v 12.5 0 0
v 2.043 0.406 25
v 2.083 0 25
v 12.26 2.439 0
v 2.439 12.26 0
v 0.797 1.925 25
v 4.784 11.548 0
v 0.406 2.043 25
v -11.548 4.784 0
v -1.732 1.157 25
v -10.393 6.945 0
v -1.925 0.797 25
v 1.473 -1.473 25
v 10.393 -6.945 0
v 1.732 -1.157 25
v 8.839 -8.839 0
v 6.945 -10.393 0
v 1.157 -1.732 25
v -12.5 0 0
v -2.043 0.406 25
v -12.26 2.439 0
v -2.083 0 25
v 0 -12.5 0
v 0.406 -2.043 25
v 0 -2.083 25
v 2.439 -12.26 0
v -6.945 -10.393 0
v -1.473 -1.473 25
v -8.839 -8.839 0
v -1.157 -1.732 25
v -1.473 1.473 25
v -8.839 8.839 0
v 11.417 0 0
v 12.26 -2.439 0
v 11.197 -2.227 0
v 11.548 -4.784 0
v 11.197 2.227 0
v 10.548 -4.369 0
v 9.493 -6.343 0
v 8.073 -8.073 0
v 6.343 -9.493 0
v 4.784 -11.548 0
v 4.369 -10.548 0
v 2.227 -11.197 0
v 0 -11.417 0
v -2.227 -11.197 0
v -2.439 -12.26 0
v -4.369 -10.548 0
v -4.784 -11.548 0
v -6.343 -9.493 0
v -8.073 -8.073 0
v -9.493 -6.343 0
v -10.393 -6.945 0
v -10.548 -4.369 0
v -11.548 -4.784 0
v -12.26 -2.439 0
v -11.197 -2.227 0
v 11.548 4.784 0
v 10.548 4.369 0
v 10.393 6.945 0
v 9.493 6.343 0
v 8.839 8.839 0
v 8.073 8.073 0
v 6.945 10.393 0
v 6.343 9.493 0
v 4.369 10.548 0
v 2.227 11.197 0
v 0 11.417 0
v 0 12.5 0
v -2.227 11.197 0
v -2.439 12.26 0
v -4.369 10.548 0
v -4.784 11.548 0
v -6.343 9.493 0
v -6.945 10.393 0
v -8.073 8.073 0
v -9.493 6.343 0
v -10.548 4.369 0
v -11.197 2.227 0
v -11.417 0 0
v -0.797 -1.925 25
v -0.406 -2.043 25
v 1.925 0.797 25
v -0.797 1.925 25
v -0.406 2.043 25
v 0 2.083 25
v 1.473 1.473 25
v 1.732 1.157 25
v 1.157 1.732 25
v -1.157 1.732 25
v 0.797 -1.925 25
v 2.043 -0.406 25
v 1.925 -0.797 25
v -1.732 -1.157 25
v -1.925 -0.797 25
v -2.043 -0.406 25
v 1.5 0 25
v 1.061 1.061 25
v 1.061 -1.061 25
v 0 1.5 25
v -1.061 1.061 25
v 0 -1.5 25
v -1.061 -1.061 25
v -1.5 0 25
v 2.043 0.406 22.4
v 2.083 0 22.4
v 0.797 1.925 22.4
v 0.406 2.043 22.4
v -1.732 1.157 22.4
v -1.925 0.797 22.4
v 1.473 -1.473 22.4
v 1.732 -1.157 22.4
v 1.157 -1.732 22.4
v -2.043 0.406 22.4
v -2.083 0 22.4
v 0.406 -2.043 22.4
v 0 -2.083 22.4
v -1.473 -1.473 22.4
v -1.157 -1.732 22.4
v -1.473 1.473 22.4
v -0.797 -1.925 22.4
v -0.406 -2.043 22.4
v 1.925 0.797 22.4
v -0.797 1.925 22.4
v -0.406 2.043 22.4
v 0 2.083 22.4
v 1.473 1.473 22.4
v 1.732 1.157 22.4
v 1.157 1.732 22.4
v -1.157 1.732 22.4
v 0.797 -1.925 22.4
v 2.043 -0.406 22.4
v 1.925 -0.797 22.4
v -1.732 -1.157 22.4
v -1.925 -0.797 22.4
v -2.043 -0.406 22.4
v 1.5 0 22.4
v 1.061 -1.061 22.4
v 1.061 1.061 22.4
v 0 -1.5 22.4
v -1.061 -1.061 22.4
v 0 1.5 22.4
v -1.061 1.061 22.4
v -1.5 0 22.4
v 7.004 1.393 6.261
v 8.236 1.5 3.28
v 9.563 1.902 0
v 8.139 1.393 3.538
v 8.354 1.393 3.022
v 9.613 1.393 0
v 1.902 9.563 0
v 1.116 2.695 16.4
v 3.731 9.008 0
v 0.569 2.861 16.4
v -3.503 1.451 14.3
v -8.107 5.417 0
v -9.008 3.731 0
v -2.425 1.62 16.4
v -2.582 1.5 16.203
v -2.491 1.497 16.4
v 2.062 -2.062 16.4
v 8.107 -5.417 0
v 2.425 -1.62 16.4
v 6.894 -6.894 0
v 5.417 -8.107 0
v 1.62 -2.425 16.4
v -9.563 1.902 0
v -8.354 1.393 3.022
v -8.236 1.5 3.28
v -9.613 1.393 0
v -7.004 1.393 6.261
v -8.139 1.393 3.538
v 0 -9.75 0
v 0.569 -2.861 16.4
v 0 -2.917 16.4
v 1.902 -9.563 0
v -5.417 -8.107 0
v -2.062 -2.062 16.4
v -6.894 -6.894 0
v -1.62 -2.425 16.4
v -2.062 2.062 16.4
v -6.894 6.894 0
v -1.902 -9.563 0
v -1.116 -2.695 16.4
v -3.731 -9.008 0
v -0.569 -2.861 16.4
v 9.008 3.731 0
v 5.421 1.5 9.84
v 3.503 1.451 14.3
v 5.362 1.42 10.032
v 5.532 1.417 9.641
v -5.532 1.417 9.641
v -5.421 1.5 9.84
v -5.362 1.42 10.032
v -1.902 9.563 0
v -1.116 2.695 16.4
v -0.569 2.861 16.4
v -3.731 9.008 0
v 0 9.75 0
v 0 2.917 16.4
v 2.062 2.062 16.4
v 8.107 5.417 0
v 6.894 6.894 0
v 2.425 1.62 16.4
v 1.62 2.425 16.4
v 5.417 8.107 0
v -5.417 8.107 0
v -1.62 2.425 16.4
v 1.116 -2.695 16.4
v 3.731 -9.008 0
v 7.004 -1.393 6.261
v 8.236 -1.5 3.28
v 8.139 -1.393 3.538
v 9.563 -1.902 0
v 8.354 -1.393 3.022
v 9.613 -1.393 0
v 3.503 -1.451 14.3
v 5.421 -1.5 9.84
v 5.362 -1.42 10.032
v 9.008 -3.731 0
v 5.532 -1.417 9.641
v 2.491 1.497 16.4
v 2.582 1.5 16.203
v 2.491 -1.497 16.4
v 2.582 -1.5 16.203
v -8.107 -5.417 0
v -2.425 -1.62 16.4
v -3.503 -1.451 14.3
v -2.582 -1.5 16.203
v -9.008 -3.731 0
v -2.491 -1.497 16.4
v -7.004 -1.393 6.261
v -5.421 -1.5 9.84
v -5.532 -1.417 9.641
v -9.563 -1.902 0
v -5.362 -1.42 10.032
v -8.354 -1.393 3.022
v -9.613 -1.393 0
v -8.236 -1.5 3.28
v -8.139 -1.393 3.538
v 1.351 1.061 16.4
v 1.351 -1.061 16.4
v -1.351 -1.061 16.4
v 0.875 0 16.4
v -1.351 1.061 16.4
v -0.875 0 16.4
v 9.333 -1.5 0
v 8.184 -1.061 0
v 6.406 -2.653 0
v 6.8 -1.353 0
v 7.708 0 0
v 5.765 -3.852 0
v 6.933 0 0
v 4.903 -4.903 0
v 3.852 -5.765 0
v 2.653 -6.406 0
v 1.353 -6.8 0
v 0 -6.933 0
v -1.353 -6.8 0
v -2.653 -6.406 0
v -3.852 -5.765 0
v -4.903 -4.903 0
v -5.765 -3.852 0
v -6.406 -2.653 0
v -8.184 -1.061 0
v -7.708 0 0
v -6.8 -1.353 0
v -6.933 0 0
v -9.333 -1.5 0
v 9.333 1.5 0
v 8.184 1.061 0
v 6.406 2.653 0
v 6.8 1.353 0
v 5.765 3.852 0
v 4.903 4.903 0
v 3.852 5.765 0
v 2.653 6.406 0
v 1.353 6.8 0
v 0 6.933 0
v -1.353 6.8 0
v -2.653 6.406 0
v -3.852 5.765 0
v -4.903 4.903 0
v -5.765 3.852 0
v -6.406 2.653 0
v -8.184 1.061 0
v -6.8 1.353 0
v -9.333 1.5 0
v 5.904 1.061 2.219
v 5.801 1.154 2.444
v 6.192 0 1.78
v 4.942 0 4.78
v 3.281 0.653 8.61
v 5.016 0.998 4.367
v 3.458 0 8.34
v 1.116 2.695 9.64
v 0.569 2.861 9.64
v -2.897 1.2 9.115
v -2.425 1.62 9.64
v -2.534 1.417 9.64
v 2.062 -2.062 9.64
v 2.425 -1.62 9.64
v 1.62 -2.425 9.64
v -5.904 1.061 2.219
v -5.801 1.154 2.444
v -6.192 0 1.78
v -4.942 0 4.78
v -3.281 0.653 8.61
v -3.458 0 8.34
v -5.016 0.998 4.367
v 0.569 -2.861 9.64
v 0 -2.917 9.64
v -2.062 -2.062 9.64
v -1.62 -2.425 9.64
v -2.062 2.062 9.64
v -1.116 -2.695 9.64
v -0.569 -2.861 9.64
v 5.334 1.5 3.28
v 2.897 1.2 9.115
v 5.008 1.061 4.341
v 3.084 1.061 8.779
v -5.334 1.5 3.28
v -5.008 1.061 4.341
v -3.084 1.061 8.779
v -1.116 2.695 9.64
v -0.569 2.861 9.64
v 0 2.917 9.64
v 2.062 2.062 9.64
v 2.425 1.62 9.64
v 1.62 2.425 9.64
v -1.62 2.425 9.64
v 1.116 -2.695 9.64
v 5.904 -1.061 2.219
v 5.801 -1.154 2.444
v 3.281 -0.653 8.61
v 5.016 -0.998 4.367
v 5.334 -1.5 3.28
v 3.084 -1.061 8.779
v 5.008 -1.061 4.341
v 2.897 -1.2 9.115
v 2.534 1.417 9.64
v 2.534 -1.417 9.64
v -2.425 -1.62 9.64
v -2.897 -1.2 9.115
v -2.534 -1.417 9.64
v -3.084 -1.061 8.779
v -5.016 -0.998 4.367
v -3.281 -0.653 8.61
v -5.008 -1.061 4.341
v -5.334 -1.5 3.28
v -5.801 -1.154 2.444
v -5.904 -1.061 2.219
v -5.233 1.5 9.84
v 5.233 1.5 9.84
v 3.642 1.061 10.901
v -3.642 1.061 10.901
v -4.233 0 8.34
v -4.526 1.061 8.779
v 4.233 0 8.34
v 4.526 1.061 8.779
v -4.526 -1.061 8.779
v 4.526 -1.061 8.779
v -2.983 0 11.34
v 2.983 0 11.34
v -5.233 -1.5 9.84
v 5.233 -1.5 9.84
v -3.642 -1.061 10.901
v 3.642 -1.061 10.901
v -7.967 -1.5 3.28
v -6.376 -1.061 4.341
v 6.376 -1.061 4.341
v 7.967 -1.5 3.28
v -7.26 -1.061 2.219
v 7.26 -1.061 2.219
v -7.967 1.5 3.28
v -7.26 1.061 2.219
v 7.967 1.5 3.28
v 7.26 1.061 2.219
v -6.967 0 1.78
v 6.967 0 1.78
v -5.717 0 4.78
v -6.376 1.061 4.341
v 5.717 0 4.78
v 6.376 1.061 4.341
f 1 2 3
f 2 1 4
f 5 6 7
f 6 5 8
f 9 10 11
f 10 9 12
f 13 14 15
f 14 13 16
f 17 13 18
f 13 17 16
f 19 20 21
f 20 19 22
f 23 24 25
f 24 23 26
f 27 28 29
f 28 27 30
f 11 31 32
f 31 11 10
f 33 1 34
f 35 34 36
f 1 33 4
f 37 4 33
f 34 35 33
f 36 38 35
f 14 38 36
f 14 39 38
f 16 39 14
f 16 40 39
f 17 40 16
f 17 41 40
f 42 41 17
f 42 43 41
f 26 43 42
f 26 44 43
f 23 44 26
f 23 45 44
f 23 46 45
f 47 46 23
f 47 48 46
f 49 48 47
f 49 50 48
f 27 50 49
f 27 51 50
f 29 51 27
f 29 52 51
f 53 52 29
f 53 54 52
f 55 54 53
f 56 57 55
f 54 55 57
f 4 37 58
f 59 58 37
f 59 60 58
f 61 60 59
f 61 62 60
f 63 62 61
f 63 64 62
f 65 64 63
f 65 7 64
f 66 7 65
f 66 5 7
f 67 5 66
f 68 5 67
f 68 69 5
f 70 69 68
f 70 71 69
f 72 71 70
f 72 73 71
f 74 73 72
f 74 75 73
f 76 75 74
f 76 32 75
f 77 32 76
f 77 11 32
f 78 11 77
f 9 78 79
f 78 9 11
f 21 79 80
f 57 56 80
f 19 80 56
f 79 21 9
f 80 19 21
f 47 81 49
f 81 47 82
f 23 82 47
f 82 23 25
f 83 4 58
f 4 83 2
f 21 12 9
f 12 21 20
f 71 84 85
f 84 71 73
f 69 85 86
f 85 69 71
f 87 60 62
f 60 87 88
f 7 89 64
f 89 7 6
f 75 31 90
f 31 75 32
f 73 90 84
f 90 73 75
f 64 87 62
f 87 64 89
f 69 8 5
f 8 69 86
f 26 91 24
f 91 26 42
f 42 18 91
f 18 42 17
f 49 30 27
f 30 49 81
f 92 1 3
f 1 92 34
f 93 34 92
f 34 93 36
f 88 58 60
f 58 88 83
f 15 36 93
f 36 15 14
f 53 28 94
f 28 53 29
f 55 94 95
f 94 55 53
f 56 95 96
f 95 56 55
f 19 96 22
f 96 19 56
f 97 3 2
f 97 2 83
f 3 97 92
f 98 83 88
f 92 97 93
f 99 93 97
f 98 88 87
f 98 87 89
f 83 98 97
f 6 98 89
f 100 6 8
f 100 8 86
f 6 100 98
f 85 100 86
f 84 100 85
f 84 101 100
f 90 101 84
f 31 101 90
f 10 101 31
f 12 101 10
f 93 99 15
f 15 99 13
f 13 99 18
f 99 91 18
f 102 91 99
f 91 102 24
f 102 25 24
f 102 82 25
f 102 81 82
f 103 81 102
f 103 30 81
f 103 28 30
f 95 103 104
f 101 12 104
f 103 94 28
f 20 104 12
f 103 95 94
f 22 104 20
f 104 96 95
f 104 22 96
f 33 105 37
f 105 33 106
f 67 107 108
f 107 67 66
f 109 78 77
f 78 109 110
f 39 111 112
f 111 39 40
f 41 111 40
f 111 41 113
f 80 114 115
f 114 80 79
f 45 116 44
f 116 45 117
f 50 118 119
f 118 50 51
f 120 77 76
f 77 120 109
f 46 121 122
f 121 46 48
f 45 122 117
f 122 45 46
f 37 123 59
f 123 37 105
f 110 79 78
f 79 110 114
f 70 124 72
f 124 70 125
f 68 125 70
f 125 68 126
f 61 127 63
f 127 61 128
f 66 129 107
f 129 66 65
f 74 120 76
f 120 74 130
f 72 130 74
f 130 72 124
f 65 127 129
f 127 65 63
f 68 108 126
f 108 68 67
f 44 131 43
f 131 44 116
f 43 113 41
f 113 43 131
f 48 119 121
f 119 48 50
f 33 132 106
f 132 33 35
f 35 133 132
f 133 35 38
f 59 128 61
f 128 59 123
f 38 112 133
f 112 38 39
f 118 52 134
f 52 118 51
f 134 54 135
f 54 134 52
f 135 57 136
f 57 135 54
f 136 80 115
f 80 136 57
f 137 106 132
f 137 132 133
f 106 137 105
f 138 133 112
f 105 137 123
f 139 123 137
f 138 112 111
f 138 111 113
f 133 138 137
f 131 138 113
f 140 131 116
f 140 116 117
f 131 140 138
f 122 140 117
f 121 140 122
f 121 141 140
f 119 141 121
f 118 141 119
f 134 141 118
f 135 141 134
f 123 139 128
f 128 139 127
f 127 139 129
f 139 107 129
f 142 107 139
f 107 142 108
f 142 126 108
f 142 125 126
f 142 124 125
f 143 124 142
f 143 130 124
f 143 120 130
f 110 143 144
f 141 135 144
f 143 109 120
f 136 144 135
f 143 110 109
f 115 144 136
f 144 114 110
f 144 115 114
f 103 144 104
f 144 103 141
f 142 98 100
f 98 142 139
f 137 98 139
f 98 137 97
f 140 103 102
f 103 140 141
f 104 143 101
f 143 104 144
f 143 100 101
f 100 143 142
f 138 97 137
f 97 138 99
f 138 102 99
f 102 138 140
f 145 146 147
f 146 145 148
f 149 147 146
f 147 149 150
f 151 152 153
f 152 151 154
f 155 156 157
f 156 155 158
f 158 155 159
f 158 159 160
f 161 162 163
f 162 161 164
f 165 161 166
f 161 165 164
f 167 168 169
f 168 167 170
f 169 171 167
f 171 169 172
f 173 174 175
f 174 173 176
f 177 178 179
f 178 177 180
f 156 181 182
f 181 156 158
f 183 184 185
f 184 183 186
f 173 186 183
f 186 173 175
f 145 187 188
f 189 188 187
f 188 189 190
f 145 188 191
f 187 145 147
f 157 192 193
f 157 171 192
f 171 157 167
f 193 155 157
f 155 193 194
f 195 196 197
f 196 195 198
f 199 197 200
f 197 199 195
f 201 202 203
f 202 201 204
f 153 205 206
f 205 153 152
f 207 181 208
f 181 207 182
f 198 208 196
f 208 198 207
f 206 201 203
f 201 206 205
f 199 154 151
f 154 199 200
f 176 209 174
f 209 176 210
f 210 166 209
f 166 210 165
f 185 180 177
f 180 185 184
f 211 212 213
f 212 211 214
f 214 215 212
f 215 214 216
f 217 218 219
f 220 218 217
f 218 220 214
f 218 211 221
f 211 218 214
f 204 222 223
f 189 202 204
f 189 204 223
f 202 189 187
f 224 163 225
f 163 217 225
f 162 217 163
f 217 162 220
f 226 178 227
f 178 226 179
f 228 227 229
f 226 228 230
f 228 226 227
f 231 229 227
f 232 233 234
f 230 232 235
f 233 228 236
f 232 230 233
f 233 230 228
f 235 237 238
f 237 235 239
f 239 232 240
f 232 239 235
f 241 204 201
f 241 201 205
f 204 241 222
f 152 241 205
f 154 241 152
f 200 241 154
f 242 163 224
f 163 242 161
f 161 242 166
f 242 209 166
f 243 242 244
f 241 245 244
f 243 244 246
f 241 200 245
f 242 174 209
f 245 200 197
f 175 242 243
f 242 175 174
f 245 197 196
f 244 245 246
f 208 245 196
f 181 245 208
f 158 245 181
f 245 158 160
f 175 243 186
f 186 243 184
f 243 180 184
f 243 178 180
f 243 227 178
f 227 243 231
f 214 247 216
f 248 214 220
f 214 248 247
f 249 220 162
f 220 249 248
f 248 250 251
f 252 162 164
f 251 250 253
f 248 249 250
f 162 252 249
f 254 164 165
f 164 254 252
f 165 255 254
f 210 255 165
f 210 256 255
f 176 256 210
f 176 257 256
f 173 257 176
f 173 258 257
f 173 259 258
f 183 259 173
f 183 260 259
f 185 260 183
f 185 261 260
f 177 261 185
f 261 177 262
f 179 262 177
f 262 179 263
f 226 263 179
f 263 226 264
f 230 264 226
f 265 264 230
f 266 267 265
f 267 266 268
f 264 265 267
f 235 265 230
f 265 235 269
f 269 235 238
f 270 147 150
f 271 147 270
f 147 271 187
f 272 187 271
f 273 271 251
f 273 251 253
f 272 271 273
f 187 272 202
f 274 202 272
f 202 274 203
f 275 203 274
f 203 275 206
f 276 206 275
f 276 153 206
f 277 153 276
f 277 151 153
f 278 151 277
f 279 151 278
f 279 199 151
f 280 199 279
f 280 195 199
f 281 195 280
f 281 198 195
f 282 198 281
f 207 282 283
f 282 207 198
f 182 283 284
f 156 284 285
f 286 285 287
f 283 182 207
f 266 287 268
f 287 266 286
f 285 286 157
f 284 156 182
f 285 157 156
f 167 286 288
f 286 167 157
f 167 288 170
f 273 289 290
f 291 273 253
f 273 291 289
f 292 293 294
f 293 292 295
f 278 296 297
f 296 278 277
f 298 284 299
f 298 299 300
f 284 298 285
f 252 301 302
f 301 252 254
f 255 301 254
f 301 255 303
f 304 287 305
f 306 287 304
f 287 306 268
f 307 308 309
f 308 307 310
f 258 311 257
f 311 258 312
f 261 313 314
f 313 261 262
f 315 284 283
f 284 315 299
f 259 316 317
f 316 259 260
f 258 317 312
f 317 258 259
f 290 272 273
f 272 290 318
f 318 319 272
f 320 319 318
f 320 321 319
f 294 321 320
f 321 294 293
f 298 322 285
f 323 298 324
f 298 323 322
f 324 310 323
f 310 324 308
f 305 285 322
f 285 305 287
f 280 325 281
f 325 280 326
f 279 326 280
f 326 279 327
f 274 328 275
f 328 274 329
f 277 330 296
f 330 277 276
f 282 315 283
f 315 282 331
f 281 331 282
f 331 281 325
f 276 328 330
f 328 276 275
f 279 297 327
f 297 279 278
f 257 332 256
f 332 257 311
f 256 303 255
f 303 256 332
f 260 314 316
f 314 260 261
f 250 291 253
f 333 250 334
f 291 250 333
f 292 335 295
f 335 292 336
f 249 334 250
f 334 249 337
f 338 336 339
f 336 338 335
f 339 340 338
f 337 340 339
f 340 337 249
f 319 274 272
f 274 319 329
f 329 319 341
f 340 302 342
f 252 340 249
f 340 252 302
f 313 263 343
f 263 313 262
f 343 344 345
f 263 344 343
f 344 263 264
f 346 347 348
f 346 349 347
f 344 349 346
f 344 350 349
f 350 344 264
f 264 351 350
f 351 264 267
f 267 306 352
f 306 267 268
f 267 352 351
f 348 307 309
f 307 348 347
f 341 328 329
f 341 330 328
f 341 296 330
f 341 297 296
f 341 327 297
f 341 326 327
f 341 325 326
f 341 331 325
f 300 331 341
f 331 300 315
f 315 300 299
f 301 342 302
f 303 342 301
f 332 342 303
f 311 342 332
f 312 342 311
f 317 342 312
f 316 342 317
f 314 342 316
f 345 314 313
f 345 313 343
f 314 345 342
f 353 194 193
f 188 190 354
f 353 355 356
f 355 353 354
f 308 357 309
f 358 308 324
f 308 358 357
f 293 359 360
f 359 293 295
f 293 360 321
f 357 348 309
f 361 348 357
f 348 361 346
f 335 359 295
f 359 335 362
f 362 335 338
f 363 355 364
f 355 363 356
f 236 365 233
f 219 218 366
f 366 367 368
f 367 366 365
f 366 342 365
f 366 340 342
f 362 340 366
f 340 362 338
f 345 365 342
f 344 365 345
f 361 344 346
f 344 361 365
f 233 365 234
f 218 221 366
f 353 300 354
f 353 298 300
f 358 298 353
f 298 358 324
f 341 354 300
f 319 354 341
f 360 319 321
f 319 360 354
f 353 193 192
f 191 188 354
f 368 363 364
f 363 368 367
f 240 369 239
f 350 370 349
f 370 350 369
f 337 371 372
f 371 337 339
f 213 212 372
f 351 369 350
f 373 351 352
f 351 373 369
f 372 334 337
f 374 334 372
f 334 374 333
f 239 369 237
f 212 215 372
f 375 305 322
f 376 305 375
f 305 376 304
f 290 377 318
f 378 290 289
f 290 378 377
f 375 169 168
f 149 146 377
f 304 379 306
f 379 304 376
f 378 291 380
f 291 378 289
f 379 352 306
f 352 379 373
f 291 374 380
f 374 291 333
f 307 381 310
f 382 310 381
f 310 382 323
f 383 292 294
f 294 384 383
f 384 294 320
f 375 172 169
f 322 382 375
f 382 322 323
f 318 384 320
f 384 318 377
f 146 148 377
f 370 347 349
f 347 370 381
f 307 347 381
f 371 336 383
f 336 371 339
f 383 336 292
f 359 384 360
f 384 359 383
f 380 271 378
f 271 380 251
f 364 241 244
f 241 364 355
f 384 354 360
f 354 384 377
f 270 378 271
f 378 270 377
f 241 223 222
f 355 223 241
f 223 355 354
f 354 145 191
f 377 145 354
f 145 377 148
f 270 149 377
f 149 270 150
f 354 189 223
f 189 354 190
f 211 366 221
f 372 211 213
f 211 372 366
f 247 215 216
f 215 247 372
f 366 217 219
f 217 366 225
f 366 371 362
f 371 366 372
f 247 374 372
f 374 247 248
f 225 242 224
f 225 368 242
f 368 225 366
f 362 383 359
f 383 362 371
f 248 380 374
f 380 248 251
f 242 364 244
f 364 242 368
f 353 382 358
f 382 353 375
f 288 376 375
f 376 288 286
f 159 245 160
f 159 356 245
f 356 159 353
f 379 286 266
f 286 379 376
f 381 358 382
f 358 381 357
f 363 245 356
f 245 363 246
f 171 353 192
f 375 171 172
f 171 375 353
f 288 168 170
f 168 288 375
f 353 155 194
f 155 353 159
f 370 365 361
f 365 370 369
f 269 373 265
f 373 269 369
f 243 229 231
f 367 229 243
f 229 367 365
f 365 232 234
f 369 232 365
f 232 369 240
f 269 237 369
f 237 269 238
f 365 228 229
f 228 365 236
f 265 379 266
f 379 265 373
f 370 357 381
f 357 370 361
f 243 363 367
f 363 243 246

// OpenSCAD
// LightPullToggle.scad

delta = 0.01 ;

module truncated_cone(d, h, tt, tb, $fn=32) {
    // Truncated cone on X-Y plane, centred on Z axis
    //
    // The diameter and height parameters define the slope of the sides, 
    // and top and bottom truncation parameters define the overall size
    //
    th = h - tt - tb ;  // Height of truncated cone
    intersection() {
        translate([0,0,-tb]) {
            cylinder(d1=d, d2=0, h=h, $fn=$fn) ;
        }
        translate([0,0,th/2]) {
            cube(size=[d,d,th], center=true) ;
        }
    }
}
////-truncated_cone(d, h, tt, tb, $fn=32)
//-truncated_cone(d=20, h=25, tt=5*(25/20), tb=4) ;


module truncated_cone_shell(d, h, t, tt, tb) {
    // Truncated conic shell on X-Y plane, centred on Z axis
    //
    // d  = diameter at base of cone
    // h  = height to apex (point) of cone
    // t  = thickness of shell
    // tt = truncation at top of code (gives flat top)
    // tb = truncation at base of code (reduces overall height while preserving slope)
    //
    slope_a = atan2(d/2, h) ;       // Half angle at apex
    shift_z = t / sin(slope_a) ;    // Shift down to leave desired shell thickness
    difference() {
        truncated_cone(d=d, h=h, tt=tt, tb=tb) ;
        translate([0,0,-shift_z]) {
            truncated_cone(d=d, h=h, tt=tt, tb=tb) ;
        }
    }
}
////-truncated_cone_shell(d, h, t, tt, tb, $fn=32)
//truncated_cone_shell(d=20, h=25, t=1, tt=5*(25/20), tb=4) ;

module LightPullToggle(d1, d2, h, t, cd) {
    // Conic shell with hole for light-pull cord toggle
    //
    // d1 = diameter at base
    // d2 = diameter at top
    // h  = overall height
    // t  = thickness of shell
    // cd = cord hole diameter
    //
    ha = h * (1+d2/d1) ;        // Height of notional apex of cone
    difference() {
        truncated_cone_shell(d=d1, h=ha, t=t, tt=ha-h, tb=0) ;
        cylinder(d=cd, h=ha, $fn=8) ;
        }
}
////-LightPullToggle(d1, d2, h1, h2, t, cd)
LightPullToggle(d1=25, d2=5, h=25, t=1, cd=3) ;

module LightPullCordLock(d1, d2, h, t1, t2, cd) {
    // Insert for light pull toggle to hold and lock cord in place
    //
    // Parameters are dimensions for toggle into which the locking piece fits.
    // The insert is shortened by 2mm at apex, and 4mm at base to fit inside.
    //
    // d1 = diameter at base
    // d2 = diameter at top
    // h  = overall height
    // t1 = thickness of toggle outer shell
    // t2 = thickness of locking piece shell
    // cd = cord hole diameter
    //
    ha      = h * (1+d2/d1) ;       // Height of notional apex of cone
    slope_a = atan2(d1/2,ha) ;      // Half angle at apex
    shift_z = t1 / sin(slope_a) ;   // Shift down to fit inside desired shell thickness
    hl      = h - 2 - shift_z - 4 ;
    hla     = h - shift_z ;         // Height of notional locking piece apex
    dl_half = hla*sin(slope_a) ;    // Half diameter at base of locking piece
    difference() {
        truncated_cone_shell(d=d1, h=ha, t=t2, tt=ha-h+2, tb=shift_z+4) ;
            // Cross holes
            translate([0,0,hl*0.6])
                rotate([0,90,0])
                    cylinder(d=cd,h=d1,center=true,$fn=8) ;
            translate([0,0,hl*0.2])
                rotate([0,90,0])
                    cylinder(d=cd,h=d1,center=true,$fn=8) ;
            // Grooves for cord
            rotate([0,-slope_a,0])
                translate([dl_half,0,0])
                    cylinder(d=cd,h=2*h+d1,center=true, $fn=8) ;
            rotate([0,slope_a,0])
                translate([-dl_half,0,0])
                    cylinder(d=cd,h=2*h+d1,center=true, $fn=8) ;
    }
}

////-LightPullCordLock(d1, d2, h, cd)
translate([0*30,0,0]) LightPullCordLock(d1=25, d2=5, h=25, t1=1, t2=2.6, cd=3) ;
